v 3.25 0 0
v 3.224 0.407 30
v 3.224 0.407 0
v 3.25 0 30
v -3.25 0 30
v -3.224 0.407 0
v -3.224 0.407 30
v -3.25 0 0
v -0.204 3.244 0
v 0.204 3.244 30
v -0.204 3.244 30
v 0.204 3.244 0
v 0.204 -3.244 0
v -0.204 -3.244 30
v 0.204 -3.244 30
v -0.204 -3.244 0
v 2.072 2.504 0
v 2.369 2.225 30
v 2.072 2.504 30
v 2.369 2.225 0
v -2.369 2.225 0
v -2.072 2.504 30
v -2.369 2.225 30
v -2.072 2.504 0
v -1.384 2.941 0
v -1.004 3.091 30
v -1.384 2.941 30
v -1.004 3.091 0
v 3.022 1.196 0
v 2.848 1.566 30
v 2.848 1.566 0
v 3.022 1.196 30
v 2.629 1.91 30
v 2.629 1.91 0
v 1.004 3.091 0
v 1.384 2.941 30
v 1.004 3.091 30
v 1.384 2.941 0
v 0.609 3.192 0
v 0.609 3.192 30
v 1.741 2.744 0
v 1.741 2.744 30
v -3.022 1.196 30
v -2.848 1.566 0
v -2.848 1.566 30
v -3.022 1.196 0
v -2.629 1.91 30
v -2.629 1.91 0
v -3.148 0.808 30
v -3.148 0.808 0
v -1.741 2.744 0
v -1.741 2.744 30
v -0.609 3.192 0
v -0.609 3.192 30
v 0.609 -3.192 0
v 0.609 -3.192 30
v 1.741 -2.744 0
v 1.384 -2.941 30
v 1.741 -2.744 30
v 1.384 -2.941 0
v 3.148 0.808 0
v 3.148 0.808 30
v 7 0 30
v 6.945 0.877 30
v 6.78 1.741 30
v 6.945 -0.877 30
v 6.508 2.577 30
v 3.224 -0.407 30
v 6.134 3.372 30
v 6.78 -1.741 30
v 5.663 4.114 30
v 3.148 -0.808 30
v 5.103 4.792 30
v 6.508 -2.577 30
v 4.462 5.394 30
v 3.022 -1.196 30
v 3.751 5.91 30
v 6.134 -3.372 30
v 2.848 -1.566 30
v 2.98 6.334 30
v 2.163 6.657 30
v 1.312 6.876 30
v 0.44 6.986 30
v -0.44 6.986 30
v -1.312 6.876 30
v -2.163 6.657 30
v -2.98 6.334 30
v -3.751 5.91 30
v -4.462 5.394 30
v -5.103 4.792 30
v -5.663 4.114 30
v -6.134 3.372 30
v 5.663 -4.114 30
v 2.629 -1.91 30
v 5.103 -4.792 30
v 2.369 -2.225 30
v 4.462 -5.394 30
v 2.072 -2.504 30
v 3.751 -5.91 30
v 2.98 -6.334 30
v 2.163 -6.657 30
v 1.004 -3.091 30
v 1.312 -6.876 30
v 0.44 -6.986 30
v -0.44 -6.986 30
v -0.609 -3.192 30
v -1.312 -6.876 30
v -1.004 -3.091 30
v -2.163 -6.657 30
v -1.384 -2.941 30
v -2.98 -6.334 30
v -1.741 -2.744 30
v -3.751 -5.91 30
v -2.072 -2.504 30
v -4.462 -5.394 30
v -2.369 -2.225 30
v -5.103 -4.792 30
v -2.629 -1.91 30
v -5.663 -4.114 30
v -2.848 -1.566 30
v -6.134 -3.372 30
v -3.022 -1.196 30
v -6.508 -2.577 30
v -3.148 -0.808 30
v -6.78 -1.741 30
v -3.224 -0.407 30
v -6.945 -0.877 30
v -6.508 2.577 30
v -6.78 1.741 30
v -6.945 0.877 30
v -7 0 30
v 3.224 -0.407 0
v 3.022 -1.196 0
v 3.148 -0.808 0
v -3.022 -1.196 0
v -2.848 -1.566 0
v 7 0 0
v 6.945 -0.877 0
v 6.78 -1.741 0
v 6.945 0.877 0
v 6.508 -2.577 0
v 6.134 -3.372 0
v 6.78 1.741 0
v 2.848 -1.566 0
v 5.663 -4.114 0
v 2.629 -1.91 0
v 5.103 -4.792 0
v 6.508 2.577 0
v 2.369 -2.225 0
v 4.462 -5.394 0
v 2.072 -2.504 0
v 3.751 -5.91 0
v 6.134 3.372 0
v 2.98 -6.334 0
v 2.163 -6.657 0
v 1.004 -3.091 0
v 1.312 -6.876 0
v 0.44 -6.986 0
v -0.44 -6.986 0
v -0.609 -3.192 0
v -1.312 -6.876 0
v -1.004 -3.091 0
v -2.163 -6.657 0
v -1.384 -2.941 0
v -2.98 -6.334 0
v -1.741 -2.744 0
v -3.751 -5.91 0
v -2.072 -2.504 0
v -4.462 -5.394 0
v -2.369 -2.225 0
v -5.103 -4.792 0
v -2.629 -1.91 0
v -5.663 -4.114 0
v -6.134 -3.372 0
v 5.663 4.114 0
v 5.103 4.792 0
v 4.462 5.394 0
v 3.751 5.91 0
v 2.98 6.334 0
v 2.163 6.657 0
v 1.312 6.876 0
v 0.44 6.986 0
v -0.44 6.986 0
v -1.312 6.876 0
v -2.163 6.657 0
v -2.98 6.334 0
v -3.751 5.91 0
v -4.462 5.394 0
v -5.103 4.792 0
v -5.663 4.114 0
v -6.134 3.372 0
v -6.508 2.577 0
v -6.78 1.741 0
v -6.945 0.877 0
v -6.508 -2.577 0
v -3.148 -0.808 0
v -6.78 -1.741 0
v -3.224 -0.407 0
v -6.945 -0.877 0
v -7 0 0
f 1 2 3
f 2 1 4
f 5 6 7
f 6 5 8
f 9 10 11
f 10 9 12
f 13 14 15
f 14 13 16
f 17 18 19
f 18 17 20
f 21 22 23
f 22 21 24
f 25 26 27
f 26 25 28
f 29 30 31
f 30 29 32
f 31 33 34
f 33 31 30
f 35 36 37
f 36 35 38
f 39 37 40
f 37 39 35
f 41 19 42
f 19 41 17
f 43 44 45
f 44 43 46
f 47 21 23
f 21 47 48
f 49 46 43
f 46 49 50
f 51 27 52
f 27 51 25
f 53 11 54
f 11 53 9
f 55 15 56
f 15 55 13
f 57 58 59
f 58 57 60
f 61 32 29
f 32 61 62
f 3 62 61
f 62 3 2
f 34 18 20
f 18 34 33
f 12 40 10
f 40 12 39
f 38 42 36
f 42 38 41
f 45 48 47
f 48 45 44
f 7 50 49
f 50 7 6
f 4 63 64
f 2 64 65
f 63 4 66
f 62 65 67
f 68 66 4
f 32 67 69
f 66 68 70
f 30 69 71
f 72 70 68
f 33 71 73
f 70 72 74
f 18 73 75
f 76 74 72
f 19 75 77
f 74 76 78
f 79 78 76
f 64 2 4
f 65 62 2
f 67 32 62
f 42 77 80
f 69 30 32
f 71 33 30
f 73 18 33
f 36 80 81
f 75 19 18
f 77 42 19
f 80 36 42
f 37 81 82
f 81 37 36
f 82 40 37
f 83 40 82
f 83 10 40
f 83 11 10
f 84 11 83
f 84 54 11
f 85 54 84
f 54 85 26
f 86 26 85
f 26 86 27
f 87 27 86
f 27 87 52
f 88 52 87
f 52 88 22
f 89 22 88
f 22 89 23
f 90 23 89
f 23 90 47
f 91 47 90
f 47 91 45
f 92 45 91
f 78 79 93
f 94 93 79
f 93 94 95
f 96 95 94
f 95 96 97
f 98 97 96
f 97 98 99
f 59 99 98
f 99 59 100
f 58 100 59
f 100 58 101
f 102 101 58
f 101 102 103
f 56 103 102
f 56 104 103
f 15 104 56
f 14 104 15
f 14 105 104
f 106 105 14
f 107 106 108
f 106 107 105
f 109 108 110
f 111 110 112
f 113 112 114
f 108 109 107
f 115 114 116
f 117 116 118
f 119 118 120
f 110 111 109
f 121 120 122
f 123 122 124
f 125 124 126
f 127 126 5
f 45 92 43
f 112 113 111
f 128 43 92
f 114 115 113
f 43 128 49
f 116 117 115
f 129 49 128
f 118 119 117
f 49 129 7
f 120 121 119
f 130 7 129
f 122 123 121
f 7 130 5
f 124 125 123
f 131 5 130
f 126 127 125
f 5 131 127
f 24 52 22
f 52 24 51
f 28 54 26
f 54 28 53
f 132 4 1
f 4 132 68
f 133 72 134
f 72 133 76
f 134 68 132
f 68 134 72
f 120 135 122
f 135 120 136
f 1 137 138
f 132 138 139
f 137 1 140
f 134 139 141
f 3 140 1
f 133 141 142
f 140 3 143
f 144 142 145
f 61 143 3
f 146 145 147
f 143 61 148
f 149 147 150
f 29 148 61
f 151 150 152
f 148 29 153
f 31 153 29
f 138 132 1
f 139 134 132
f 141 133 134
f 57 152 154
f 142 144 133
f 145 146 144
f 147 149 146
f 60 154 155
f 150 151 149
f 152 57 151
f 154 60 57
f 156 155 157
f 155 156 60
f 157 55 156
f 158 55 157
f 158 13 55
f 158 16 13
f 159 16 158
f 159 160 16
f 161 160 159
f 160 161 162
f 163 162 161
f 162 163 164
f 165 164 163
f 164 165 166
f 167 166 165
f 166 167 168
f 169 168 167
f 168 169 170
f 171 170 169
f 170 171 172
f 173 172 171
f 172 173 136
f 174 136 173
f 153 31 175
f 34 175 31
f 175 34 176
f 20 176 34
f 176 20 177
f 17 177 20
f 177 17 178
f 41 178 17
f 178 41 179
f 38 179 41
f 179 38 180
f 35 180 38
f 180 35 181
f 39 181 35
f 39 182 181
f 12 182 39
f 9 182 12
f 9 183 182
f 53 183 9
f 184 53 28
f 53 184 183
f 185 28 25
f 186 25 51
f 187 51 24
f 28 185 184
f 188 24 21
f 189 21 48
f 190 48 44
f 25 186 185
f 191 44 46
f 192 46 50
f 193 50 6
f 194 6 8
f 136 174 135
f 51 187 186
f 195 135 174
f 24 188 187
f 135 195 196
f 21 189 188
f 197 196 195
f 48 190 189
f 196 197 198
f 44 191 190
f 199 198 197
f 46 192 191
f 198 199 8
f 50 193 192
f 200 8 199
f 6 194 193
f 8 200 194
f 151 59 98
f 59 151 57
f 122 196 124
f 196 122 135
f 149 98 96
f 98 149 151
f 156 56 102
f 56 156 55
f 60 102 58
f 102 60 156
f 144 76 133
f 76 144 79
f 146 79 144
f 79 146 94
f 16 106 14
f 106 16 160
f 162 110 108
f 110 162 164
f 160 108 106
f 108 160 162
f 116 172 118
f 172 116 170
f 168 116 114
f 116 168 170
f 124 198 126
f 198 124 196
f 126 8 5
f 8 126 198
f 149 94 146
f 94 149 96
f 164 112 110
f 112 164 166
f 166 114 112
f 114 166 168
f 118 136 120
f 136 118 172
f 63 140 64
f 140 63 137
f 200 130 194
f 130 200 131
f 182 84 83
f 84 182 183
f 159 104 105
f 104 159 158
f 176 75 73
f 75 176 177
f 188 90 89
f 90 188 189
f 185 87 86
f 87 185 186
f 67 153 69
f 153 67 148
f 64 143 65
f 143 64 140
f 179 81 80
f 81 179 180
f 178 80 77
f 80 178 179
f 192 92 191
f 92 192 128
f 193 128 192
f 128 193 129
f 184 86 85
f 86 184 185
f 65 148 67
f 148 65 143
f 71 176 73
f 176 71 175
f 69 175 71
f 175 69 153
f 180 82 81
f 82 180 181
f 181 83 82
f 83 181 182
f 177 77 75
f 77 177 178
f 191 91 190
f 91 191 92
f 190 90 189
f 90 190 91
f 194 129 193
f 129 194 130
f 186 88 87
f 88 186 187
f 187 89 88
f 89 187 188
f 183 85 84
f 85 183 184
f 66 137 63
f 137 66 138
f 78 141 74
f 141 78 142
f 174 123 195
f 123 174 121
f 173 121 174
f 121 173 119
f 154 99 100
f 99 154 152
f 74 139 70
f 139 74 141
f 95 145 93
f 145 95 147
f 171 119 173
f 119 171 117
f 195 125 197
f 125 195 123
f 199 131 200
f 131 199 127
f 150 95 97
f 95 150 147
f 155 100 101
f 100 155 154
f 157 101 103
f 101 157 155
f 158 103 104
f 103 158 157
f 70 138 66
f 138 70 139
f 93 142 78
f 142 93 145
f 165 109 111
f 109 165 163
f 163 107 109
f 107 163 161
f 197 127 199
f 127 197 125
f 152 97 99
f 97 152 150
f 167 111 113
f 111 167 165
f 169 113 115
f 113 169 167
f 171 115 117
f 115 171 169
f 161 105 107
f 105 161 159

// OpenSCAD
$fn = 50;


difference() {
	union() {
		cylinder(h = 30, r = 7.0000000000);
	}
	union() {
		cylinder(h = 30, r = 3.2500000000);
		cylinder(h = 30, r = 3.2500000000);
		cylinder(h = 30, r = 1.8000000000);
		cylinder(h = 30, r = 1.8000000000);
		cylinder(h = 30, r = 1.8000000000);
		cylinder(h = 30, r = 1.8000000000);
		cylinder(h = 30, r = 1.8000000000);
		cylinder(h = 30, r = 1.8000000000);
	}
}
